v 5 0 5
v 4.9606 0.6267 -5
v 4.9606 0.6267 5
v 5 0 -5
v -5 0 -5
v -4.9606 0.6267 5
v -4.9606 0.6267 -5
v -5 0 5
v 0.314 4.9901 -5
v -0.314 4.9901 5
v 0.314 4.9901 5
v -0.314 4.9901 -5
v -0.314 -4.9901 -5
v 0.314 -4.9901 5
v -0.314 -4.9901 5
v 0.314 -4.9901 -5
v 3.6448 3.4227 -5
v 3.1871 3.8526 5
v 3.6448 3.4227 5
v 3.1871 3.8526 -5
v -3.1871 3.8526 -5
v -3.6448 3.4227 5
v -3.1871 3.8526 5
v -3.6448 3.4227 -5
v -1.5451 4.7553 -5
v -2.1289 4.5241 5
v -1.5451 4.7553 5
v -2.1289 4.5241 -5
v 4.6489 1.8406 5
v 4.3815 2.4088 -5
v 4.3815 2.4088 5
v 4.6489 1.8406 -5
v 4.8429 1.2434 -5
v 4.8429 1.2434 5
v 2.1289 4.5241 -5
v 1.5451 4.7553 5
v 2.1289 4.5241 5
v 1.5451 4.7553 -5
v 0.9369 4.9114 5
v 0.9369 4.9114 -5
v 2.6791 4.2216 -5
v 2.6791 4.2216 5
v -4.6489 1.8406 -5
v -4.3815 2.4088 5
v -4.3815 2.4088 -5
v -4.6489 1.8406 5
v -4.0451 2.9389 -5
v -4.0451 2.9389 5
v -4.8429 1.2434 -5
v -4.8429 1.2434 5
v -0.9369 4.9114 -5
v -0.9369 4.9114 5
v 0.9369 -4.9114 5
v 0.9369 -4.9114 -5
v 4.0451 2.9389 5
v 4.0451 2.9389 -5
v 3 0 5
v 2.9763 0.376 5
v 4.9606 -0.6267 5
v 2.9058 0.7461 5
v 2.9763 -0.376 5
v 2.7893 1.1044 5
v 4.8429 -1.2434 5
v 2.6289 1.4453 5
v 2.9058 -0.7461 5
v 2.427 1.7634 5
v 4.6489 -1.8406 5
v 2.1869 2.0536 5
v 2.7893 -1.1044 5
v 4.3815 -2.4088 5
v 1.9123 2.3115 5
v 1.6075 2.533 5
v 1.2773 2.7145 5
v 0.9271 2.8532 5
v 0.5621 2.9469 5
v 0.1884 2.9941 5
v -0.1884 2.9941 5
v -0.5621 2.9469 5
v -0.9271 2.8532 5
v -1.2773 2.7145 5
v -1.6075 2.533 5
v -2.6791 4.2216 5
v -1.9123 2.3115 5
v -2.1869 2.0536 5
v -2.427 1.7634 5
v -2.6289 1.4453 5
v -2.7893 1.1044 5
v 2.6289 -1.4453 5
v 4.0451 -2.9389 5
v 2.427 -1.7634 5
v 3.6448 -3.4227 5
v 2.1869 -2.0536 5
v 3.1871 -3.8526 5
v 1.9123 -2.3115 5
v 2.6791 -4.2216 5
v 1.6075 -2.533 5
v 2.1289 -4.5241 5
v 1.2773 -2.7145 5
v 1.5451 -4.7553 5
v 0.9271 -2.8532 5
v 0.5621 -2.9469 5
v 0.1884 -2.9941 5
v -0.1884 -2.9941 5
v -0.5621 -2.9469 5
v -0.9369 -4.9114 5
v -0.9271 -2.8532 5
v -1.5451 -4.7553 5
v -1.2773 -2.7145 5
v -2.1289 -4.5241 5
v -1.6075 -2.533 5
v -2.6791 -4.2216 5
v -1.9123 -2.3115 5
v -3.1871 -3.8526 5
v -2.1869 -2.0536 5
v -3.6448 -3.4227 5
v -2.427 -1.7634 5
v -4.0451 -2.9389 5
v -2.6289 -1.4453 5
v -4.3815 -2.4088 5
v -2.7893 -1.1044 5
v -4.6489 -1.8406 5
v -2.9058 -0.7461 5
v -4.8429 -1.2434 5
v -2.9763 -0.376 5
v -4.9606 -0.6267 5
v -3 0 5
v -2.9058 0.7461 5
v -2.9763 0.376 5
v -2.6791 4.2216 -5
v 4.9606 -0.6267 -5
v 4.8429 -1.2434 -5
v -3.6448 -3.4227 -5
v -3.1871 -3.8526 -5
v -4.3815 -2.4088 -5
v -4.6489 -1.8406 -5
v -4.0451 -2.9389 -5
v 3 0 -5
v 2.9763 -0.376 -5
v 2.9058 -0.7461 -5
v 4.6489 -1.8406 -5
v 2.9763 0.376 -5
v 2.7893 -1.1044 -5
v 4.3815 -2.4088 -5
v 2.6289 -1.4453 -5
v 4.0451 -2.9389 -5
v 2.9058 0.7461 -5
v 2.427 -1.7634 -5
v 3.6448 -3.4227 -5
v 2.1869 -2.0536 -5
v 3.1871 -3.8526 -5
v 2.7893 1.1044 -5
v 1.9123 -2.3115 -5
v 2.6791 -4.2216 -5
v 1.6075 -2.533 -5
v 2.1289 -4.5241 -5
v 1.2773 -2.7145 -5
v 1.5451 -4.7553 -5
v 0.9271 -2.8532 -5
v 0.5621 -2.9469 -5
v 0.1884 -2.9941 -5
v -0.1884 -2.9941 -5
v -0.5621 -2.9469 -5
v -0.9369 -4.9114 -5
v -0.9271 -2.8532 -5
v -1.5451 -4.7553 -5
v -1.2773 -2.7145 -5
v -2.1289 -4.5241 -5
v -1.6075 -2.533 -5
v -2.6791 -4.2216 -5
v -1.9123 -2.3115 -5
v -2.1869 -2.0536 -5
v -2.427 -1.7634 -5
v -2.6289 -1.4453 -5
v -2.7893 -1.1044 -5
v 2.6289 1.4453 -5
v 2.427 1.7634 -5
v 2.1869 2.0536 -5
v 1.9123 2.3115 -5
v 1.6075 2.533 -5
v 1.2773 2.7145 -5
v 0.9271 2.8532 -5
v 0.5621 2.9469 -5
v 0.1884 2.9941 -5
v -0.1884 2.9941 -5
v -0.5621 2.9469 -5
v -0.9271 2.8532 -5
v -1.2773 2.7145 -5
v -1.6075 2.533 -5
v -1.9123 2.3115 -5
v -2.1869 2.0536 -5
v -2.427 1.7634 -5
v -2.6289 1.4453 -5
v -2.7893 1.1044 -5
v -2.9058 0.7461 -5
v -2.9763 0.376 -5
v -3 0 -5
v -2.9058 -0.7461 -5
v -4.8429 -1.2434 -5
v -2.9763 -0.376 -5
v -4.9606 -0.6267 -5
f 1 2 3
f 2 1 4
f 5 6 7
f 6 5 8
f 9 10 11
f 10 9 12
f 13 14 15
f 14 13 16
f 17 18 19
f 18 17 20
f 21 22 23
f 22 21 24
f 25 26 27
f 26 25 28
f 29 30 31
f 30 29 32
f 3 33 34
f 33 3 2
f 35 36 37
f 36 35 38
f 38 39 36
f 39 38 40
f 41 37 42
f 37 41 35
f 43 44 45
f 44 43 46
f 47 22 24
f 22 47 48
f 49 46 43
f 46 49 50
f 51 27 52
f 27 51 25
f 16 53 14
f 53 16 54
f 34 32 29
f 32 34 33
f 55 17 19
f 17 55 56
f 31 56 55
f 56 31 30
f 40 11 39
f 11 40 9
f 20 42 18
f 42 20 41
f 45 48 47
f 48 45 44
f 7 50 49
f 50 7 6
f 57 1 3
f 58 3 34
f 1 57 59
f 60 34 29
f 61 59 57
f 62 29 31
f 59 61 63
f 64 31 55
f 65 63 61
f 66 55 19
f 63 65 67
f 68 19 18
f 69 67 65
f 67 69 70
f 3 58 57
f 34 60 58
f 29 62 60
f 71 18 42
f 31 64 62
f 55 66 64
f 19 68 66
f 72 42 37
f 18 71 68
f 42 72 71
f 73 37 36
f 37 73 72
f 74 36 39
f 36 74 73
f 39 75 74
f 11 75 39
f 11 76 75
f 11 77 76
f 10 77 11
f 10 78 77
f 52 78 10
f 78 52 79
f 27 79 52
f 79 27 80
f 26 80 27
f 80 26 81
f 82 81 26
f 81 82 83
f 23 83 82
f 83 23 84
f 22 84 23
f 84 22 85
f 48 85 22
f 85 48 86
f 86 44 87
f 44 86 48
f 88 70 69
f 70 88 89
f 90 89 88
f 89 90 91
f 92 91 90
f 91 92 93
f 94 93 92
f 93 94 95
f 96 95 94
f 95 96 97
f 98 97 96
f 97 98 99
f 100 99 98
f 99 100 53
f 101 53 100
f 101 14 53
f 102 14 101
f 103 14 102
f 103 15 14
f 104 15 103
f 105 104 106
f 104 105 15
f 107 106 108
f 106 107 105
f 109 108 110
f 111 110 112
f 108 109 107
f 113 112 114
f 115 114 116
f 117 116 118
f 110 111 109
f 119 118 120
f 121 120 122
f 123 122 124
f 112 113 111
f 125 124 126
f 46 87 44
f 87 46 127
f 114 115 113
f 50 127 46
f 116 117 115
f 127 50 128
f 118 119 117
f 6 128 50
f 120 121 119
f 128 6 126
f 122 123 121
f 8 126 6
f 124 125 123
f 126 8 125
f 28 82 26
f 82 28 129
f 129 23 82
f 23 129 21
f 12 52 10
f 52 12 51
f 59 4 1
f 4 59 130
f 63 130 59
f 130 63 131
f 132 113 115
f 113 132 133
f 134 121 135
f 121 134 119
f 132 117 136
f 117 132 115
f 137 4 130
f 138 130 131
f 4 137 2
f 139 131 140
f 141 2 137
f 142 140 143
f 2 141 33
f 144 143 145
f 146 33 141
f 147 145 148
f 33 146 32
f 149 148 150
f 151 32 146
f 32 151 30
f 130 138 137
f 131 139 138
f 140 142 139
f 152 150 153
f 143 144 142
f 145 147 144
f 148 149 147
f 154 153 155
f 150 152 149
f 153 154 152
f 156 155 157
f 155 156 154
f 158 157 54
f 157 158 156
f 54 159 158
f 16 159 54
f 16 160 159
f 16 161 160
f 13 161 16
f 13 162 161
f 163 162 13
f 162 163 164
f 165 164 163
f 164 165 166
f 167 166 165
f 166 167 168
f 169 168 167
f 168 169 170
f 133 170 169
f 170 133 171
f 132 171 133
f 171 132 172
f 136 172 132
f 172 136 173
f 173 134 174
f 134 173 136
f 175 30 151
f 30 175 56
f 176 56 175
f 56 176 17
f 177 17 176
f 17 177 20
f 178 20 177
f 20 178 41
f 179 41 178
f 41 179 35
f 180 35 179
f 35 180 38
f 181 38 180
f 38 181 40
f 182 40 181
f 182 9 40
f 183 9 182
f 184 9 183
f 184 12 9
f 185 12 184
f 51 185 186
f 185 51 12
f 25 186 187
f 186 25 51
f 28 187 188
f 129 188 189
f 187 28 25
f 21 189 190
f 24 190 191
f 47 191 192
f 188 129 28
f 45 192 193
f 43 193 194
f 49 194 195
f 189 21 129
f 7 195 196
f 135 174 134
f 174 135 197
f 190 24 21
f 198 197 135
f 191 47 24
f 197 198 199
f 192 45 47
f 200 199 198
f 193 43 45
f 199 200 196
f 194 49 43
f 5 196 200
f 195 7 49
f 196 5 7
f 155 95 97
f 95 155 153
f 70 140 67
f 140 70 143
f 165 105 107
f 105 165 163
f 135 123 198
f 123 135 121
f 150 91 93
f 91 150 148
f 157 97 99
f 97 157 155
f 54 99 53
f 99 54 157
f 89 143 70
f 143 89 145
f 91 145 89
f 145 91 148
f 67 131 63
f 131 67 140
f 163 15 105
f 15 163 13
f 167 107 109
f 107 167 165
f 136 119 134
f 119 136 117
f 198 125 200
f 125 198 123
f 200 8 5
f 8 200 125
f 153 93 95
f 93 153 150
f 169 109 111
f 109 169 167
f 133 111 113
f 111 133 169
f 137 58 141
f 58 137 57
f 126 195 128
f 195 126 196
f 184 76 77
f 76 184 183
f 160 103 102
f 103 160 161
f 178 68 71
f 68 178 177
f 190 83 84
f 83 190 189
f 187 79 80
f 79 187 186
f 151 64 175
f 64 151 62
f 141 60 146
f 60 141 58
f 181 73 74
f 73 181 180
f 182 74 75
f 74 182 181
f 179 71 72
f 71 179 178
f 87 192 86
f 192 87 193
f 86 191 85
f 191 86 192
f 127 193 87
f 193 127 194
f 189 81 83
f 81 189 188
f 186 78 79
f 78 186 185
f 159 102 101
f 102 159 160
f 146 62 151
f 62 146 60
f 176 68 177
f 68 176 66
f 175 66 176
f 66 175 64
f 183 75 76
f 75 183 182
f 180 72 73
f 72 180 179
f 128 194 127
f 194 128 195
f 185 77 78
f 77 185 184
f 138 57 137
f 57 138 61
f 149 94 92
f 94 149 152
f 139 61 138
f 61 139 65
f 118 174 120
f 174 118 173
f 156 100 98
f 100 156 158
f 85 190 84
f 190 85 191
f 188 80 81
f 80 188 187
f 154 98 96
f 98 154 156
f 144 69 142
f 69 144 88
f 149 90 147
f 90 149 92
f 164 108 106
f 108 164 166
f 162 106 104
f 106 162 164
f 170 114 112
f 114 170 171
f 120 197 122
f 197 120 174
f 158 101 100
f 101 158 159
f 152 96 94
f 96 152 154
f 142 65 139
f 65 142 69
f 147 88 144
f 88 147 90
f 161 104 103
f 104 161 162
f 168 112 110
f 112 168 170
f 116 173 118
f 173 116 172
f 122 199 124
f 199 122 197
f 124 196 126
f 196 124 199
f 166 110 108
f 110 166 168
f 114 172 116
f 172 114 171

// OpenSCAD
$fn = 50;


difference() {
	union() {
		translate(v = [0, 0, -5.0000000000]) {
			cylinder(h = 10, r = 5.0000000000);
		}
	}
	union() {
		translate(v = [0, 0, -100.0000000000]) {
			cylinder(h = 200, r = 3);
		}
	}
}
